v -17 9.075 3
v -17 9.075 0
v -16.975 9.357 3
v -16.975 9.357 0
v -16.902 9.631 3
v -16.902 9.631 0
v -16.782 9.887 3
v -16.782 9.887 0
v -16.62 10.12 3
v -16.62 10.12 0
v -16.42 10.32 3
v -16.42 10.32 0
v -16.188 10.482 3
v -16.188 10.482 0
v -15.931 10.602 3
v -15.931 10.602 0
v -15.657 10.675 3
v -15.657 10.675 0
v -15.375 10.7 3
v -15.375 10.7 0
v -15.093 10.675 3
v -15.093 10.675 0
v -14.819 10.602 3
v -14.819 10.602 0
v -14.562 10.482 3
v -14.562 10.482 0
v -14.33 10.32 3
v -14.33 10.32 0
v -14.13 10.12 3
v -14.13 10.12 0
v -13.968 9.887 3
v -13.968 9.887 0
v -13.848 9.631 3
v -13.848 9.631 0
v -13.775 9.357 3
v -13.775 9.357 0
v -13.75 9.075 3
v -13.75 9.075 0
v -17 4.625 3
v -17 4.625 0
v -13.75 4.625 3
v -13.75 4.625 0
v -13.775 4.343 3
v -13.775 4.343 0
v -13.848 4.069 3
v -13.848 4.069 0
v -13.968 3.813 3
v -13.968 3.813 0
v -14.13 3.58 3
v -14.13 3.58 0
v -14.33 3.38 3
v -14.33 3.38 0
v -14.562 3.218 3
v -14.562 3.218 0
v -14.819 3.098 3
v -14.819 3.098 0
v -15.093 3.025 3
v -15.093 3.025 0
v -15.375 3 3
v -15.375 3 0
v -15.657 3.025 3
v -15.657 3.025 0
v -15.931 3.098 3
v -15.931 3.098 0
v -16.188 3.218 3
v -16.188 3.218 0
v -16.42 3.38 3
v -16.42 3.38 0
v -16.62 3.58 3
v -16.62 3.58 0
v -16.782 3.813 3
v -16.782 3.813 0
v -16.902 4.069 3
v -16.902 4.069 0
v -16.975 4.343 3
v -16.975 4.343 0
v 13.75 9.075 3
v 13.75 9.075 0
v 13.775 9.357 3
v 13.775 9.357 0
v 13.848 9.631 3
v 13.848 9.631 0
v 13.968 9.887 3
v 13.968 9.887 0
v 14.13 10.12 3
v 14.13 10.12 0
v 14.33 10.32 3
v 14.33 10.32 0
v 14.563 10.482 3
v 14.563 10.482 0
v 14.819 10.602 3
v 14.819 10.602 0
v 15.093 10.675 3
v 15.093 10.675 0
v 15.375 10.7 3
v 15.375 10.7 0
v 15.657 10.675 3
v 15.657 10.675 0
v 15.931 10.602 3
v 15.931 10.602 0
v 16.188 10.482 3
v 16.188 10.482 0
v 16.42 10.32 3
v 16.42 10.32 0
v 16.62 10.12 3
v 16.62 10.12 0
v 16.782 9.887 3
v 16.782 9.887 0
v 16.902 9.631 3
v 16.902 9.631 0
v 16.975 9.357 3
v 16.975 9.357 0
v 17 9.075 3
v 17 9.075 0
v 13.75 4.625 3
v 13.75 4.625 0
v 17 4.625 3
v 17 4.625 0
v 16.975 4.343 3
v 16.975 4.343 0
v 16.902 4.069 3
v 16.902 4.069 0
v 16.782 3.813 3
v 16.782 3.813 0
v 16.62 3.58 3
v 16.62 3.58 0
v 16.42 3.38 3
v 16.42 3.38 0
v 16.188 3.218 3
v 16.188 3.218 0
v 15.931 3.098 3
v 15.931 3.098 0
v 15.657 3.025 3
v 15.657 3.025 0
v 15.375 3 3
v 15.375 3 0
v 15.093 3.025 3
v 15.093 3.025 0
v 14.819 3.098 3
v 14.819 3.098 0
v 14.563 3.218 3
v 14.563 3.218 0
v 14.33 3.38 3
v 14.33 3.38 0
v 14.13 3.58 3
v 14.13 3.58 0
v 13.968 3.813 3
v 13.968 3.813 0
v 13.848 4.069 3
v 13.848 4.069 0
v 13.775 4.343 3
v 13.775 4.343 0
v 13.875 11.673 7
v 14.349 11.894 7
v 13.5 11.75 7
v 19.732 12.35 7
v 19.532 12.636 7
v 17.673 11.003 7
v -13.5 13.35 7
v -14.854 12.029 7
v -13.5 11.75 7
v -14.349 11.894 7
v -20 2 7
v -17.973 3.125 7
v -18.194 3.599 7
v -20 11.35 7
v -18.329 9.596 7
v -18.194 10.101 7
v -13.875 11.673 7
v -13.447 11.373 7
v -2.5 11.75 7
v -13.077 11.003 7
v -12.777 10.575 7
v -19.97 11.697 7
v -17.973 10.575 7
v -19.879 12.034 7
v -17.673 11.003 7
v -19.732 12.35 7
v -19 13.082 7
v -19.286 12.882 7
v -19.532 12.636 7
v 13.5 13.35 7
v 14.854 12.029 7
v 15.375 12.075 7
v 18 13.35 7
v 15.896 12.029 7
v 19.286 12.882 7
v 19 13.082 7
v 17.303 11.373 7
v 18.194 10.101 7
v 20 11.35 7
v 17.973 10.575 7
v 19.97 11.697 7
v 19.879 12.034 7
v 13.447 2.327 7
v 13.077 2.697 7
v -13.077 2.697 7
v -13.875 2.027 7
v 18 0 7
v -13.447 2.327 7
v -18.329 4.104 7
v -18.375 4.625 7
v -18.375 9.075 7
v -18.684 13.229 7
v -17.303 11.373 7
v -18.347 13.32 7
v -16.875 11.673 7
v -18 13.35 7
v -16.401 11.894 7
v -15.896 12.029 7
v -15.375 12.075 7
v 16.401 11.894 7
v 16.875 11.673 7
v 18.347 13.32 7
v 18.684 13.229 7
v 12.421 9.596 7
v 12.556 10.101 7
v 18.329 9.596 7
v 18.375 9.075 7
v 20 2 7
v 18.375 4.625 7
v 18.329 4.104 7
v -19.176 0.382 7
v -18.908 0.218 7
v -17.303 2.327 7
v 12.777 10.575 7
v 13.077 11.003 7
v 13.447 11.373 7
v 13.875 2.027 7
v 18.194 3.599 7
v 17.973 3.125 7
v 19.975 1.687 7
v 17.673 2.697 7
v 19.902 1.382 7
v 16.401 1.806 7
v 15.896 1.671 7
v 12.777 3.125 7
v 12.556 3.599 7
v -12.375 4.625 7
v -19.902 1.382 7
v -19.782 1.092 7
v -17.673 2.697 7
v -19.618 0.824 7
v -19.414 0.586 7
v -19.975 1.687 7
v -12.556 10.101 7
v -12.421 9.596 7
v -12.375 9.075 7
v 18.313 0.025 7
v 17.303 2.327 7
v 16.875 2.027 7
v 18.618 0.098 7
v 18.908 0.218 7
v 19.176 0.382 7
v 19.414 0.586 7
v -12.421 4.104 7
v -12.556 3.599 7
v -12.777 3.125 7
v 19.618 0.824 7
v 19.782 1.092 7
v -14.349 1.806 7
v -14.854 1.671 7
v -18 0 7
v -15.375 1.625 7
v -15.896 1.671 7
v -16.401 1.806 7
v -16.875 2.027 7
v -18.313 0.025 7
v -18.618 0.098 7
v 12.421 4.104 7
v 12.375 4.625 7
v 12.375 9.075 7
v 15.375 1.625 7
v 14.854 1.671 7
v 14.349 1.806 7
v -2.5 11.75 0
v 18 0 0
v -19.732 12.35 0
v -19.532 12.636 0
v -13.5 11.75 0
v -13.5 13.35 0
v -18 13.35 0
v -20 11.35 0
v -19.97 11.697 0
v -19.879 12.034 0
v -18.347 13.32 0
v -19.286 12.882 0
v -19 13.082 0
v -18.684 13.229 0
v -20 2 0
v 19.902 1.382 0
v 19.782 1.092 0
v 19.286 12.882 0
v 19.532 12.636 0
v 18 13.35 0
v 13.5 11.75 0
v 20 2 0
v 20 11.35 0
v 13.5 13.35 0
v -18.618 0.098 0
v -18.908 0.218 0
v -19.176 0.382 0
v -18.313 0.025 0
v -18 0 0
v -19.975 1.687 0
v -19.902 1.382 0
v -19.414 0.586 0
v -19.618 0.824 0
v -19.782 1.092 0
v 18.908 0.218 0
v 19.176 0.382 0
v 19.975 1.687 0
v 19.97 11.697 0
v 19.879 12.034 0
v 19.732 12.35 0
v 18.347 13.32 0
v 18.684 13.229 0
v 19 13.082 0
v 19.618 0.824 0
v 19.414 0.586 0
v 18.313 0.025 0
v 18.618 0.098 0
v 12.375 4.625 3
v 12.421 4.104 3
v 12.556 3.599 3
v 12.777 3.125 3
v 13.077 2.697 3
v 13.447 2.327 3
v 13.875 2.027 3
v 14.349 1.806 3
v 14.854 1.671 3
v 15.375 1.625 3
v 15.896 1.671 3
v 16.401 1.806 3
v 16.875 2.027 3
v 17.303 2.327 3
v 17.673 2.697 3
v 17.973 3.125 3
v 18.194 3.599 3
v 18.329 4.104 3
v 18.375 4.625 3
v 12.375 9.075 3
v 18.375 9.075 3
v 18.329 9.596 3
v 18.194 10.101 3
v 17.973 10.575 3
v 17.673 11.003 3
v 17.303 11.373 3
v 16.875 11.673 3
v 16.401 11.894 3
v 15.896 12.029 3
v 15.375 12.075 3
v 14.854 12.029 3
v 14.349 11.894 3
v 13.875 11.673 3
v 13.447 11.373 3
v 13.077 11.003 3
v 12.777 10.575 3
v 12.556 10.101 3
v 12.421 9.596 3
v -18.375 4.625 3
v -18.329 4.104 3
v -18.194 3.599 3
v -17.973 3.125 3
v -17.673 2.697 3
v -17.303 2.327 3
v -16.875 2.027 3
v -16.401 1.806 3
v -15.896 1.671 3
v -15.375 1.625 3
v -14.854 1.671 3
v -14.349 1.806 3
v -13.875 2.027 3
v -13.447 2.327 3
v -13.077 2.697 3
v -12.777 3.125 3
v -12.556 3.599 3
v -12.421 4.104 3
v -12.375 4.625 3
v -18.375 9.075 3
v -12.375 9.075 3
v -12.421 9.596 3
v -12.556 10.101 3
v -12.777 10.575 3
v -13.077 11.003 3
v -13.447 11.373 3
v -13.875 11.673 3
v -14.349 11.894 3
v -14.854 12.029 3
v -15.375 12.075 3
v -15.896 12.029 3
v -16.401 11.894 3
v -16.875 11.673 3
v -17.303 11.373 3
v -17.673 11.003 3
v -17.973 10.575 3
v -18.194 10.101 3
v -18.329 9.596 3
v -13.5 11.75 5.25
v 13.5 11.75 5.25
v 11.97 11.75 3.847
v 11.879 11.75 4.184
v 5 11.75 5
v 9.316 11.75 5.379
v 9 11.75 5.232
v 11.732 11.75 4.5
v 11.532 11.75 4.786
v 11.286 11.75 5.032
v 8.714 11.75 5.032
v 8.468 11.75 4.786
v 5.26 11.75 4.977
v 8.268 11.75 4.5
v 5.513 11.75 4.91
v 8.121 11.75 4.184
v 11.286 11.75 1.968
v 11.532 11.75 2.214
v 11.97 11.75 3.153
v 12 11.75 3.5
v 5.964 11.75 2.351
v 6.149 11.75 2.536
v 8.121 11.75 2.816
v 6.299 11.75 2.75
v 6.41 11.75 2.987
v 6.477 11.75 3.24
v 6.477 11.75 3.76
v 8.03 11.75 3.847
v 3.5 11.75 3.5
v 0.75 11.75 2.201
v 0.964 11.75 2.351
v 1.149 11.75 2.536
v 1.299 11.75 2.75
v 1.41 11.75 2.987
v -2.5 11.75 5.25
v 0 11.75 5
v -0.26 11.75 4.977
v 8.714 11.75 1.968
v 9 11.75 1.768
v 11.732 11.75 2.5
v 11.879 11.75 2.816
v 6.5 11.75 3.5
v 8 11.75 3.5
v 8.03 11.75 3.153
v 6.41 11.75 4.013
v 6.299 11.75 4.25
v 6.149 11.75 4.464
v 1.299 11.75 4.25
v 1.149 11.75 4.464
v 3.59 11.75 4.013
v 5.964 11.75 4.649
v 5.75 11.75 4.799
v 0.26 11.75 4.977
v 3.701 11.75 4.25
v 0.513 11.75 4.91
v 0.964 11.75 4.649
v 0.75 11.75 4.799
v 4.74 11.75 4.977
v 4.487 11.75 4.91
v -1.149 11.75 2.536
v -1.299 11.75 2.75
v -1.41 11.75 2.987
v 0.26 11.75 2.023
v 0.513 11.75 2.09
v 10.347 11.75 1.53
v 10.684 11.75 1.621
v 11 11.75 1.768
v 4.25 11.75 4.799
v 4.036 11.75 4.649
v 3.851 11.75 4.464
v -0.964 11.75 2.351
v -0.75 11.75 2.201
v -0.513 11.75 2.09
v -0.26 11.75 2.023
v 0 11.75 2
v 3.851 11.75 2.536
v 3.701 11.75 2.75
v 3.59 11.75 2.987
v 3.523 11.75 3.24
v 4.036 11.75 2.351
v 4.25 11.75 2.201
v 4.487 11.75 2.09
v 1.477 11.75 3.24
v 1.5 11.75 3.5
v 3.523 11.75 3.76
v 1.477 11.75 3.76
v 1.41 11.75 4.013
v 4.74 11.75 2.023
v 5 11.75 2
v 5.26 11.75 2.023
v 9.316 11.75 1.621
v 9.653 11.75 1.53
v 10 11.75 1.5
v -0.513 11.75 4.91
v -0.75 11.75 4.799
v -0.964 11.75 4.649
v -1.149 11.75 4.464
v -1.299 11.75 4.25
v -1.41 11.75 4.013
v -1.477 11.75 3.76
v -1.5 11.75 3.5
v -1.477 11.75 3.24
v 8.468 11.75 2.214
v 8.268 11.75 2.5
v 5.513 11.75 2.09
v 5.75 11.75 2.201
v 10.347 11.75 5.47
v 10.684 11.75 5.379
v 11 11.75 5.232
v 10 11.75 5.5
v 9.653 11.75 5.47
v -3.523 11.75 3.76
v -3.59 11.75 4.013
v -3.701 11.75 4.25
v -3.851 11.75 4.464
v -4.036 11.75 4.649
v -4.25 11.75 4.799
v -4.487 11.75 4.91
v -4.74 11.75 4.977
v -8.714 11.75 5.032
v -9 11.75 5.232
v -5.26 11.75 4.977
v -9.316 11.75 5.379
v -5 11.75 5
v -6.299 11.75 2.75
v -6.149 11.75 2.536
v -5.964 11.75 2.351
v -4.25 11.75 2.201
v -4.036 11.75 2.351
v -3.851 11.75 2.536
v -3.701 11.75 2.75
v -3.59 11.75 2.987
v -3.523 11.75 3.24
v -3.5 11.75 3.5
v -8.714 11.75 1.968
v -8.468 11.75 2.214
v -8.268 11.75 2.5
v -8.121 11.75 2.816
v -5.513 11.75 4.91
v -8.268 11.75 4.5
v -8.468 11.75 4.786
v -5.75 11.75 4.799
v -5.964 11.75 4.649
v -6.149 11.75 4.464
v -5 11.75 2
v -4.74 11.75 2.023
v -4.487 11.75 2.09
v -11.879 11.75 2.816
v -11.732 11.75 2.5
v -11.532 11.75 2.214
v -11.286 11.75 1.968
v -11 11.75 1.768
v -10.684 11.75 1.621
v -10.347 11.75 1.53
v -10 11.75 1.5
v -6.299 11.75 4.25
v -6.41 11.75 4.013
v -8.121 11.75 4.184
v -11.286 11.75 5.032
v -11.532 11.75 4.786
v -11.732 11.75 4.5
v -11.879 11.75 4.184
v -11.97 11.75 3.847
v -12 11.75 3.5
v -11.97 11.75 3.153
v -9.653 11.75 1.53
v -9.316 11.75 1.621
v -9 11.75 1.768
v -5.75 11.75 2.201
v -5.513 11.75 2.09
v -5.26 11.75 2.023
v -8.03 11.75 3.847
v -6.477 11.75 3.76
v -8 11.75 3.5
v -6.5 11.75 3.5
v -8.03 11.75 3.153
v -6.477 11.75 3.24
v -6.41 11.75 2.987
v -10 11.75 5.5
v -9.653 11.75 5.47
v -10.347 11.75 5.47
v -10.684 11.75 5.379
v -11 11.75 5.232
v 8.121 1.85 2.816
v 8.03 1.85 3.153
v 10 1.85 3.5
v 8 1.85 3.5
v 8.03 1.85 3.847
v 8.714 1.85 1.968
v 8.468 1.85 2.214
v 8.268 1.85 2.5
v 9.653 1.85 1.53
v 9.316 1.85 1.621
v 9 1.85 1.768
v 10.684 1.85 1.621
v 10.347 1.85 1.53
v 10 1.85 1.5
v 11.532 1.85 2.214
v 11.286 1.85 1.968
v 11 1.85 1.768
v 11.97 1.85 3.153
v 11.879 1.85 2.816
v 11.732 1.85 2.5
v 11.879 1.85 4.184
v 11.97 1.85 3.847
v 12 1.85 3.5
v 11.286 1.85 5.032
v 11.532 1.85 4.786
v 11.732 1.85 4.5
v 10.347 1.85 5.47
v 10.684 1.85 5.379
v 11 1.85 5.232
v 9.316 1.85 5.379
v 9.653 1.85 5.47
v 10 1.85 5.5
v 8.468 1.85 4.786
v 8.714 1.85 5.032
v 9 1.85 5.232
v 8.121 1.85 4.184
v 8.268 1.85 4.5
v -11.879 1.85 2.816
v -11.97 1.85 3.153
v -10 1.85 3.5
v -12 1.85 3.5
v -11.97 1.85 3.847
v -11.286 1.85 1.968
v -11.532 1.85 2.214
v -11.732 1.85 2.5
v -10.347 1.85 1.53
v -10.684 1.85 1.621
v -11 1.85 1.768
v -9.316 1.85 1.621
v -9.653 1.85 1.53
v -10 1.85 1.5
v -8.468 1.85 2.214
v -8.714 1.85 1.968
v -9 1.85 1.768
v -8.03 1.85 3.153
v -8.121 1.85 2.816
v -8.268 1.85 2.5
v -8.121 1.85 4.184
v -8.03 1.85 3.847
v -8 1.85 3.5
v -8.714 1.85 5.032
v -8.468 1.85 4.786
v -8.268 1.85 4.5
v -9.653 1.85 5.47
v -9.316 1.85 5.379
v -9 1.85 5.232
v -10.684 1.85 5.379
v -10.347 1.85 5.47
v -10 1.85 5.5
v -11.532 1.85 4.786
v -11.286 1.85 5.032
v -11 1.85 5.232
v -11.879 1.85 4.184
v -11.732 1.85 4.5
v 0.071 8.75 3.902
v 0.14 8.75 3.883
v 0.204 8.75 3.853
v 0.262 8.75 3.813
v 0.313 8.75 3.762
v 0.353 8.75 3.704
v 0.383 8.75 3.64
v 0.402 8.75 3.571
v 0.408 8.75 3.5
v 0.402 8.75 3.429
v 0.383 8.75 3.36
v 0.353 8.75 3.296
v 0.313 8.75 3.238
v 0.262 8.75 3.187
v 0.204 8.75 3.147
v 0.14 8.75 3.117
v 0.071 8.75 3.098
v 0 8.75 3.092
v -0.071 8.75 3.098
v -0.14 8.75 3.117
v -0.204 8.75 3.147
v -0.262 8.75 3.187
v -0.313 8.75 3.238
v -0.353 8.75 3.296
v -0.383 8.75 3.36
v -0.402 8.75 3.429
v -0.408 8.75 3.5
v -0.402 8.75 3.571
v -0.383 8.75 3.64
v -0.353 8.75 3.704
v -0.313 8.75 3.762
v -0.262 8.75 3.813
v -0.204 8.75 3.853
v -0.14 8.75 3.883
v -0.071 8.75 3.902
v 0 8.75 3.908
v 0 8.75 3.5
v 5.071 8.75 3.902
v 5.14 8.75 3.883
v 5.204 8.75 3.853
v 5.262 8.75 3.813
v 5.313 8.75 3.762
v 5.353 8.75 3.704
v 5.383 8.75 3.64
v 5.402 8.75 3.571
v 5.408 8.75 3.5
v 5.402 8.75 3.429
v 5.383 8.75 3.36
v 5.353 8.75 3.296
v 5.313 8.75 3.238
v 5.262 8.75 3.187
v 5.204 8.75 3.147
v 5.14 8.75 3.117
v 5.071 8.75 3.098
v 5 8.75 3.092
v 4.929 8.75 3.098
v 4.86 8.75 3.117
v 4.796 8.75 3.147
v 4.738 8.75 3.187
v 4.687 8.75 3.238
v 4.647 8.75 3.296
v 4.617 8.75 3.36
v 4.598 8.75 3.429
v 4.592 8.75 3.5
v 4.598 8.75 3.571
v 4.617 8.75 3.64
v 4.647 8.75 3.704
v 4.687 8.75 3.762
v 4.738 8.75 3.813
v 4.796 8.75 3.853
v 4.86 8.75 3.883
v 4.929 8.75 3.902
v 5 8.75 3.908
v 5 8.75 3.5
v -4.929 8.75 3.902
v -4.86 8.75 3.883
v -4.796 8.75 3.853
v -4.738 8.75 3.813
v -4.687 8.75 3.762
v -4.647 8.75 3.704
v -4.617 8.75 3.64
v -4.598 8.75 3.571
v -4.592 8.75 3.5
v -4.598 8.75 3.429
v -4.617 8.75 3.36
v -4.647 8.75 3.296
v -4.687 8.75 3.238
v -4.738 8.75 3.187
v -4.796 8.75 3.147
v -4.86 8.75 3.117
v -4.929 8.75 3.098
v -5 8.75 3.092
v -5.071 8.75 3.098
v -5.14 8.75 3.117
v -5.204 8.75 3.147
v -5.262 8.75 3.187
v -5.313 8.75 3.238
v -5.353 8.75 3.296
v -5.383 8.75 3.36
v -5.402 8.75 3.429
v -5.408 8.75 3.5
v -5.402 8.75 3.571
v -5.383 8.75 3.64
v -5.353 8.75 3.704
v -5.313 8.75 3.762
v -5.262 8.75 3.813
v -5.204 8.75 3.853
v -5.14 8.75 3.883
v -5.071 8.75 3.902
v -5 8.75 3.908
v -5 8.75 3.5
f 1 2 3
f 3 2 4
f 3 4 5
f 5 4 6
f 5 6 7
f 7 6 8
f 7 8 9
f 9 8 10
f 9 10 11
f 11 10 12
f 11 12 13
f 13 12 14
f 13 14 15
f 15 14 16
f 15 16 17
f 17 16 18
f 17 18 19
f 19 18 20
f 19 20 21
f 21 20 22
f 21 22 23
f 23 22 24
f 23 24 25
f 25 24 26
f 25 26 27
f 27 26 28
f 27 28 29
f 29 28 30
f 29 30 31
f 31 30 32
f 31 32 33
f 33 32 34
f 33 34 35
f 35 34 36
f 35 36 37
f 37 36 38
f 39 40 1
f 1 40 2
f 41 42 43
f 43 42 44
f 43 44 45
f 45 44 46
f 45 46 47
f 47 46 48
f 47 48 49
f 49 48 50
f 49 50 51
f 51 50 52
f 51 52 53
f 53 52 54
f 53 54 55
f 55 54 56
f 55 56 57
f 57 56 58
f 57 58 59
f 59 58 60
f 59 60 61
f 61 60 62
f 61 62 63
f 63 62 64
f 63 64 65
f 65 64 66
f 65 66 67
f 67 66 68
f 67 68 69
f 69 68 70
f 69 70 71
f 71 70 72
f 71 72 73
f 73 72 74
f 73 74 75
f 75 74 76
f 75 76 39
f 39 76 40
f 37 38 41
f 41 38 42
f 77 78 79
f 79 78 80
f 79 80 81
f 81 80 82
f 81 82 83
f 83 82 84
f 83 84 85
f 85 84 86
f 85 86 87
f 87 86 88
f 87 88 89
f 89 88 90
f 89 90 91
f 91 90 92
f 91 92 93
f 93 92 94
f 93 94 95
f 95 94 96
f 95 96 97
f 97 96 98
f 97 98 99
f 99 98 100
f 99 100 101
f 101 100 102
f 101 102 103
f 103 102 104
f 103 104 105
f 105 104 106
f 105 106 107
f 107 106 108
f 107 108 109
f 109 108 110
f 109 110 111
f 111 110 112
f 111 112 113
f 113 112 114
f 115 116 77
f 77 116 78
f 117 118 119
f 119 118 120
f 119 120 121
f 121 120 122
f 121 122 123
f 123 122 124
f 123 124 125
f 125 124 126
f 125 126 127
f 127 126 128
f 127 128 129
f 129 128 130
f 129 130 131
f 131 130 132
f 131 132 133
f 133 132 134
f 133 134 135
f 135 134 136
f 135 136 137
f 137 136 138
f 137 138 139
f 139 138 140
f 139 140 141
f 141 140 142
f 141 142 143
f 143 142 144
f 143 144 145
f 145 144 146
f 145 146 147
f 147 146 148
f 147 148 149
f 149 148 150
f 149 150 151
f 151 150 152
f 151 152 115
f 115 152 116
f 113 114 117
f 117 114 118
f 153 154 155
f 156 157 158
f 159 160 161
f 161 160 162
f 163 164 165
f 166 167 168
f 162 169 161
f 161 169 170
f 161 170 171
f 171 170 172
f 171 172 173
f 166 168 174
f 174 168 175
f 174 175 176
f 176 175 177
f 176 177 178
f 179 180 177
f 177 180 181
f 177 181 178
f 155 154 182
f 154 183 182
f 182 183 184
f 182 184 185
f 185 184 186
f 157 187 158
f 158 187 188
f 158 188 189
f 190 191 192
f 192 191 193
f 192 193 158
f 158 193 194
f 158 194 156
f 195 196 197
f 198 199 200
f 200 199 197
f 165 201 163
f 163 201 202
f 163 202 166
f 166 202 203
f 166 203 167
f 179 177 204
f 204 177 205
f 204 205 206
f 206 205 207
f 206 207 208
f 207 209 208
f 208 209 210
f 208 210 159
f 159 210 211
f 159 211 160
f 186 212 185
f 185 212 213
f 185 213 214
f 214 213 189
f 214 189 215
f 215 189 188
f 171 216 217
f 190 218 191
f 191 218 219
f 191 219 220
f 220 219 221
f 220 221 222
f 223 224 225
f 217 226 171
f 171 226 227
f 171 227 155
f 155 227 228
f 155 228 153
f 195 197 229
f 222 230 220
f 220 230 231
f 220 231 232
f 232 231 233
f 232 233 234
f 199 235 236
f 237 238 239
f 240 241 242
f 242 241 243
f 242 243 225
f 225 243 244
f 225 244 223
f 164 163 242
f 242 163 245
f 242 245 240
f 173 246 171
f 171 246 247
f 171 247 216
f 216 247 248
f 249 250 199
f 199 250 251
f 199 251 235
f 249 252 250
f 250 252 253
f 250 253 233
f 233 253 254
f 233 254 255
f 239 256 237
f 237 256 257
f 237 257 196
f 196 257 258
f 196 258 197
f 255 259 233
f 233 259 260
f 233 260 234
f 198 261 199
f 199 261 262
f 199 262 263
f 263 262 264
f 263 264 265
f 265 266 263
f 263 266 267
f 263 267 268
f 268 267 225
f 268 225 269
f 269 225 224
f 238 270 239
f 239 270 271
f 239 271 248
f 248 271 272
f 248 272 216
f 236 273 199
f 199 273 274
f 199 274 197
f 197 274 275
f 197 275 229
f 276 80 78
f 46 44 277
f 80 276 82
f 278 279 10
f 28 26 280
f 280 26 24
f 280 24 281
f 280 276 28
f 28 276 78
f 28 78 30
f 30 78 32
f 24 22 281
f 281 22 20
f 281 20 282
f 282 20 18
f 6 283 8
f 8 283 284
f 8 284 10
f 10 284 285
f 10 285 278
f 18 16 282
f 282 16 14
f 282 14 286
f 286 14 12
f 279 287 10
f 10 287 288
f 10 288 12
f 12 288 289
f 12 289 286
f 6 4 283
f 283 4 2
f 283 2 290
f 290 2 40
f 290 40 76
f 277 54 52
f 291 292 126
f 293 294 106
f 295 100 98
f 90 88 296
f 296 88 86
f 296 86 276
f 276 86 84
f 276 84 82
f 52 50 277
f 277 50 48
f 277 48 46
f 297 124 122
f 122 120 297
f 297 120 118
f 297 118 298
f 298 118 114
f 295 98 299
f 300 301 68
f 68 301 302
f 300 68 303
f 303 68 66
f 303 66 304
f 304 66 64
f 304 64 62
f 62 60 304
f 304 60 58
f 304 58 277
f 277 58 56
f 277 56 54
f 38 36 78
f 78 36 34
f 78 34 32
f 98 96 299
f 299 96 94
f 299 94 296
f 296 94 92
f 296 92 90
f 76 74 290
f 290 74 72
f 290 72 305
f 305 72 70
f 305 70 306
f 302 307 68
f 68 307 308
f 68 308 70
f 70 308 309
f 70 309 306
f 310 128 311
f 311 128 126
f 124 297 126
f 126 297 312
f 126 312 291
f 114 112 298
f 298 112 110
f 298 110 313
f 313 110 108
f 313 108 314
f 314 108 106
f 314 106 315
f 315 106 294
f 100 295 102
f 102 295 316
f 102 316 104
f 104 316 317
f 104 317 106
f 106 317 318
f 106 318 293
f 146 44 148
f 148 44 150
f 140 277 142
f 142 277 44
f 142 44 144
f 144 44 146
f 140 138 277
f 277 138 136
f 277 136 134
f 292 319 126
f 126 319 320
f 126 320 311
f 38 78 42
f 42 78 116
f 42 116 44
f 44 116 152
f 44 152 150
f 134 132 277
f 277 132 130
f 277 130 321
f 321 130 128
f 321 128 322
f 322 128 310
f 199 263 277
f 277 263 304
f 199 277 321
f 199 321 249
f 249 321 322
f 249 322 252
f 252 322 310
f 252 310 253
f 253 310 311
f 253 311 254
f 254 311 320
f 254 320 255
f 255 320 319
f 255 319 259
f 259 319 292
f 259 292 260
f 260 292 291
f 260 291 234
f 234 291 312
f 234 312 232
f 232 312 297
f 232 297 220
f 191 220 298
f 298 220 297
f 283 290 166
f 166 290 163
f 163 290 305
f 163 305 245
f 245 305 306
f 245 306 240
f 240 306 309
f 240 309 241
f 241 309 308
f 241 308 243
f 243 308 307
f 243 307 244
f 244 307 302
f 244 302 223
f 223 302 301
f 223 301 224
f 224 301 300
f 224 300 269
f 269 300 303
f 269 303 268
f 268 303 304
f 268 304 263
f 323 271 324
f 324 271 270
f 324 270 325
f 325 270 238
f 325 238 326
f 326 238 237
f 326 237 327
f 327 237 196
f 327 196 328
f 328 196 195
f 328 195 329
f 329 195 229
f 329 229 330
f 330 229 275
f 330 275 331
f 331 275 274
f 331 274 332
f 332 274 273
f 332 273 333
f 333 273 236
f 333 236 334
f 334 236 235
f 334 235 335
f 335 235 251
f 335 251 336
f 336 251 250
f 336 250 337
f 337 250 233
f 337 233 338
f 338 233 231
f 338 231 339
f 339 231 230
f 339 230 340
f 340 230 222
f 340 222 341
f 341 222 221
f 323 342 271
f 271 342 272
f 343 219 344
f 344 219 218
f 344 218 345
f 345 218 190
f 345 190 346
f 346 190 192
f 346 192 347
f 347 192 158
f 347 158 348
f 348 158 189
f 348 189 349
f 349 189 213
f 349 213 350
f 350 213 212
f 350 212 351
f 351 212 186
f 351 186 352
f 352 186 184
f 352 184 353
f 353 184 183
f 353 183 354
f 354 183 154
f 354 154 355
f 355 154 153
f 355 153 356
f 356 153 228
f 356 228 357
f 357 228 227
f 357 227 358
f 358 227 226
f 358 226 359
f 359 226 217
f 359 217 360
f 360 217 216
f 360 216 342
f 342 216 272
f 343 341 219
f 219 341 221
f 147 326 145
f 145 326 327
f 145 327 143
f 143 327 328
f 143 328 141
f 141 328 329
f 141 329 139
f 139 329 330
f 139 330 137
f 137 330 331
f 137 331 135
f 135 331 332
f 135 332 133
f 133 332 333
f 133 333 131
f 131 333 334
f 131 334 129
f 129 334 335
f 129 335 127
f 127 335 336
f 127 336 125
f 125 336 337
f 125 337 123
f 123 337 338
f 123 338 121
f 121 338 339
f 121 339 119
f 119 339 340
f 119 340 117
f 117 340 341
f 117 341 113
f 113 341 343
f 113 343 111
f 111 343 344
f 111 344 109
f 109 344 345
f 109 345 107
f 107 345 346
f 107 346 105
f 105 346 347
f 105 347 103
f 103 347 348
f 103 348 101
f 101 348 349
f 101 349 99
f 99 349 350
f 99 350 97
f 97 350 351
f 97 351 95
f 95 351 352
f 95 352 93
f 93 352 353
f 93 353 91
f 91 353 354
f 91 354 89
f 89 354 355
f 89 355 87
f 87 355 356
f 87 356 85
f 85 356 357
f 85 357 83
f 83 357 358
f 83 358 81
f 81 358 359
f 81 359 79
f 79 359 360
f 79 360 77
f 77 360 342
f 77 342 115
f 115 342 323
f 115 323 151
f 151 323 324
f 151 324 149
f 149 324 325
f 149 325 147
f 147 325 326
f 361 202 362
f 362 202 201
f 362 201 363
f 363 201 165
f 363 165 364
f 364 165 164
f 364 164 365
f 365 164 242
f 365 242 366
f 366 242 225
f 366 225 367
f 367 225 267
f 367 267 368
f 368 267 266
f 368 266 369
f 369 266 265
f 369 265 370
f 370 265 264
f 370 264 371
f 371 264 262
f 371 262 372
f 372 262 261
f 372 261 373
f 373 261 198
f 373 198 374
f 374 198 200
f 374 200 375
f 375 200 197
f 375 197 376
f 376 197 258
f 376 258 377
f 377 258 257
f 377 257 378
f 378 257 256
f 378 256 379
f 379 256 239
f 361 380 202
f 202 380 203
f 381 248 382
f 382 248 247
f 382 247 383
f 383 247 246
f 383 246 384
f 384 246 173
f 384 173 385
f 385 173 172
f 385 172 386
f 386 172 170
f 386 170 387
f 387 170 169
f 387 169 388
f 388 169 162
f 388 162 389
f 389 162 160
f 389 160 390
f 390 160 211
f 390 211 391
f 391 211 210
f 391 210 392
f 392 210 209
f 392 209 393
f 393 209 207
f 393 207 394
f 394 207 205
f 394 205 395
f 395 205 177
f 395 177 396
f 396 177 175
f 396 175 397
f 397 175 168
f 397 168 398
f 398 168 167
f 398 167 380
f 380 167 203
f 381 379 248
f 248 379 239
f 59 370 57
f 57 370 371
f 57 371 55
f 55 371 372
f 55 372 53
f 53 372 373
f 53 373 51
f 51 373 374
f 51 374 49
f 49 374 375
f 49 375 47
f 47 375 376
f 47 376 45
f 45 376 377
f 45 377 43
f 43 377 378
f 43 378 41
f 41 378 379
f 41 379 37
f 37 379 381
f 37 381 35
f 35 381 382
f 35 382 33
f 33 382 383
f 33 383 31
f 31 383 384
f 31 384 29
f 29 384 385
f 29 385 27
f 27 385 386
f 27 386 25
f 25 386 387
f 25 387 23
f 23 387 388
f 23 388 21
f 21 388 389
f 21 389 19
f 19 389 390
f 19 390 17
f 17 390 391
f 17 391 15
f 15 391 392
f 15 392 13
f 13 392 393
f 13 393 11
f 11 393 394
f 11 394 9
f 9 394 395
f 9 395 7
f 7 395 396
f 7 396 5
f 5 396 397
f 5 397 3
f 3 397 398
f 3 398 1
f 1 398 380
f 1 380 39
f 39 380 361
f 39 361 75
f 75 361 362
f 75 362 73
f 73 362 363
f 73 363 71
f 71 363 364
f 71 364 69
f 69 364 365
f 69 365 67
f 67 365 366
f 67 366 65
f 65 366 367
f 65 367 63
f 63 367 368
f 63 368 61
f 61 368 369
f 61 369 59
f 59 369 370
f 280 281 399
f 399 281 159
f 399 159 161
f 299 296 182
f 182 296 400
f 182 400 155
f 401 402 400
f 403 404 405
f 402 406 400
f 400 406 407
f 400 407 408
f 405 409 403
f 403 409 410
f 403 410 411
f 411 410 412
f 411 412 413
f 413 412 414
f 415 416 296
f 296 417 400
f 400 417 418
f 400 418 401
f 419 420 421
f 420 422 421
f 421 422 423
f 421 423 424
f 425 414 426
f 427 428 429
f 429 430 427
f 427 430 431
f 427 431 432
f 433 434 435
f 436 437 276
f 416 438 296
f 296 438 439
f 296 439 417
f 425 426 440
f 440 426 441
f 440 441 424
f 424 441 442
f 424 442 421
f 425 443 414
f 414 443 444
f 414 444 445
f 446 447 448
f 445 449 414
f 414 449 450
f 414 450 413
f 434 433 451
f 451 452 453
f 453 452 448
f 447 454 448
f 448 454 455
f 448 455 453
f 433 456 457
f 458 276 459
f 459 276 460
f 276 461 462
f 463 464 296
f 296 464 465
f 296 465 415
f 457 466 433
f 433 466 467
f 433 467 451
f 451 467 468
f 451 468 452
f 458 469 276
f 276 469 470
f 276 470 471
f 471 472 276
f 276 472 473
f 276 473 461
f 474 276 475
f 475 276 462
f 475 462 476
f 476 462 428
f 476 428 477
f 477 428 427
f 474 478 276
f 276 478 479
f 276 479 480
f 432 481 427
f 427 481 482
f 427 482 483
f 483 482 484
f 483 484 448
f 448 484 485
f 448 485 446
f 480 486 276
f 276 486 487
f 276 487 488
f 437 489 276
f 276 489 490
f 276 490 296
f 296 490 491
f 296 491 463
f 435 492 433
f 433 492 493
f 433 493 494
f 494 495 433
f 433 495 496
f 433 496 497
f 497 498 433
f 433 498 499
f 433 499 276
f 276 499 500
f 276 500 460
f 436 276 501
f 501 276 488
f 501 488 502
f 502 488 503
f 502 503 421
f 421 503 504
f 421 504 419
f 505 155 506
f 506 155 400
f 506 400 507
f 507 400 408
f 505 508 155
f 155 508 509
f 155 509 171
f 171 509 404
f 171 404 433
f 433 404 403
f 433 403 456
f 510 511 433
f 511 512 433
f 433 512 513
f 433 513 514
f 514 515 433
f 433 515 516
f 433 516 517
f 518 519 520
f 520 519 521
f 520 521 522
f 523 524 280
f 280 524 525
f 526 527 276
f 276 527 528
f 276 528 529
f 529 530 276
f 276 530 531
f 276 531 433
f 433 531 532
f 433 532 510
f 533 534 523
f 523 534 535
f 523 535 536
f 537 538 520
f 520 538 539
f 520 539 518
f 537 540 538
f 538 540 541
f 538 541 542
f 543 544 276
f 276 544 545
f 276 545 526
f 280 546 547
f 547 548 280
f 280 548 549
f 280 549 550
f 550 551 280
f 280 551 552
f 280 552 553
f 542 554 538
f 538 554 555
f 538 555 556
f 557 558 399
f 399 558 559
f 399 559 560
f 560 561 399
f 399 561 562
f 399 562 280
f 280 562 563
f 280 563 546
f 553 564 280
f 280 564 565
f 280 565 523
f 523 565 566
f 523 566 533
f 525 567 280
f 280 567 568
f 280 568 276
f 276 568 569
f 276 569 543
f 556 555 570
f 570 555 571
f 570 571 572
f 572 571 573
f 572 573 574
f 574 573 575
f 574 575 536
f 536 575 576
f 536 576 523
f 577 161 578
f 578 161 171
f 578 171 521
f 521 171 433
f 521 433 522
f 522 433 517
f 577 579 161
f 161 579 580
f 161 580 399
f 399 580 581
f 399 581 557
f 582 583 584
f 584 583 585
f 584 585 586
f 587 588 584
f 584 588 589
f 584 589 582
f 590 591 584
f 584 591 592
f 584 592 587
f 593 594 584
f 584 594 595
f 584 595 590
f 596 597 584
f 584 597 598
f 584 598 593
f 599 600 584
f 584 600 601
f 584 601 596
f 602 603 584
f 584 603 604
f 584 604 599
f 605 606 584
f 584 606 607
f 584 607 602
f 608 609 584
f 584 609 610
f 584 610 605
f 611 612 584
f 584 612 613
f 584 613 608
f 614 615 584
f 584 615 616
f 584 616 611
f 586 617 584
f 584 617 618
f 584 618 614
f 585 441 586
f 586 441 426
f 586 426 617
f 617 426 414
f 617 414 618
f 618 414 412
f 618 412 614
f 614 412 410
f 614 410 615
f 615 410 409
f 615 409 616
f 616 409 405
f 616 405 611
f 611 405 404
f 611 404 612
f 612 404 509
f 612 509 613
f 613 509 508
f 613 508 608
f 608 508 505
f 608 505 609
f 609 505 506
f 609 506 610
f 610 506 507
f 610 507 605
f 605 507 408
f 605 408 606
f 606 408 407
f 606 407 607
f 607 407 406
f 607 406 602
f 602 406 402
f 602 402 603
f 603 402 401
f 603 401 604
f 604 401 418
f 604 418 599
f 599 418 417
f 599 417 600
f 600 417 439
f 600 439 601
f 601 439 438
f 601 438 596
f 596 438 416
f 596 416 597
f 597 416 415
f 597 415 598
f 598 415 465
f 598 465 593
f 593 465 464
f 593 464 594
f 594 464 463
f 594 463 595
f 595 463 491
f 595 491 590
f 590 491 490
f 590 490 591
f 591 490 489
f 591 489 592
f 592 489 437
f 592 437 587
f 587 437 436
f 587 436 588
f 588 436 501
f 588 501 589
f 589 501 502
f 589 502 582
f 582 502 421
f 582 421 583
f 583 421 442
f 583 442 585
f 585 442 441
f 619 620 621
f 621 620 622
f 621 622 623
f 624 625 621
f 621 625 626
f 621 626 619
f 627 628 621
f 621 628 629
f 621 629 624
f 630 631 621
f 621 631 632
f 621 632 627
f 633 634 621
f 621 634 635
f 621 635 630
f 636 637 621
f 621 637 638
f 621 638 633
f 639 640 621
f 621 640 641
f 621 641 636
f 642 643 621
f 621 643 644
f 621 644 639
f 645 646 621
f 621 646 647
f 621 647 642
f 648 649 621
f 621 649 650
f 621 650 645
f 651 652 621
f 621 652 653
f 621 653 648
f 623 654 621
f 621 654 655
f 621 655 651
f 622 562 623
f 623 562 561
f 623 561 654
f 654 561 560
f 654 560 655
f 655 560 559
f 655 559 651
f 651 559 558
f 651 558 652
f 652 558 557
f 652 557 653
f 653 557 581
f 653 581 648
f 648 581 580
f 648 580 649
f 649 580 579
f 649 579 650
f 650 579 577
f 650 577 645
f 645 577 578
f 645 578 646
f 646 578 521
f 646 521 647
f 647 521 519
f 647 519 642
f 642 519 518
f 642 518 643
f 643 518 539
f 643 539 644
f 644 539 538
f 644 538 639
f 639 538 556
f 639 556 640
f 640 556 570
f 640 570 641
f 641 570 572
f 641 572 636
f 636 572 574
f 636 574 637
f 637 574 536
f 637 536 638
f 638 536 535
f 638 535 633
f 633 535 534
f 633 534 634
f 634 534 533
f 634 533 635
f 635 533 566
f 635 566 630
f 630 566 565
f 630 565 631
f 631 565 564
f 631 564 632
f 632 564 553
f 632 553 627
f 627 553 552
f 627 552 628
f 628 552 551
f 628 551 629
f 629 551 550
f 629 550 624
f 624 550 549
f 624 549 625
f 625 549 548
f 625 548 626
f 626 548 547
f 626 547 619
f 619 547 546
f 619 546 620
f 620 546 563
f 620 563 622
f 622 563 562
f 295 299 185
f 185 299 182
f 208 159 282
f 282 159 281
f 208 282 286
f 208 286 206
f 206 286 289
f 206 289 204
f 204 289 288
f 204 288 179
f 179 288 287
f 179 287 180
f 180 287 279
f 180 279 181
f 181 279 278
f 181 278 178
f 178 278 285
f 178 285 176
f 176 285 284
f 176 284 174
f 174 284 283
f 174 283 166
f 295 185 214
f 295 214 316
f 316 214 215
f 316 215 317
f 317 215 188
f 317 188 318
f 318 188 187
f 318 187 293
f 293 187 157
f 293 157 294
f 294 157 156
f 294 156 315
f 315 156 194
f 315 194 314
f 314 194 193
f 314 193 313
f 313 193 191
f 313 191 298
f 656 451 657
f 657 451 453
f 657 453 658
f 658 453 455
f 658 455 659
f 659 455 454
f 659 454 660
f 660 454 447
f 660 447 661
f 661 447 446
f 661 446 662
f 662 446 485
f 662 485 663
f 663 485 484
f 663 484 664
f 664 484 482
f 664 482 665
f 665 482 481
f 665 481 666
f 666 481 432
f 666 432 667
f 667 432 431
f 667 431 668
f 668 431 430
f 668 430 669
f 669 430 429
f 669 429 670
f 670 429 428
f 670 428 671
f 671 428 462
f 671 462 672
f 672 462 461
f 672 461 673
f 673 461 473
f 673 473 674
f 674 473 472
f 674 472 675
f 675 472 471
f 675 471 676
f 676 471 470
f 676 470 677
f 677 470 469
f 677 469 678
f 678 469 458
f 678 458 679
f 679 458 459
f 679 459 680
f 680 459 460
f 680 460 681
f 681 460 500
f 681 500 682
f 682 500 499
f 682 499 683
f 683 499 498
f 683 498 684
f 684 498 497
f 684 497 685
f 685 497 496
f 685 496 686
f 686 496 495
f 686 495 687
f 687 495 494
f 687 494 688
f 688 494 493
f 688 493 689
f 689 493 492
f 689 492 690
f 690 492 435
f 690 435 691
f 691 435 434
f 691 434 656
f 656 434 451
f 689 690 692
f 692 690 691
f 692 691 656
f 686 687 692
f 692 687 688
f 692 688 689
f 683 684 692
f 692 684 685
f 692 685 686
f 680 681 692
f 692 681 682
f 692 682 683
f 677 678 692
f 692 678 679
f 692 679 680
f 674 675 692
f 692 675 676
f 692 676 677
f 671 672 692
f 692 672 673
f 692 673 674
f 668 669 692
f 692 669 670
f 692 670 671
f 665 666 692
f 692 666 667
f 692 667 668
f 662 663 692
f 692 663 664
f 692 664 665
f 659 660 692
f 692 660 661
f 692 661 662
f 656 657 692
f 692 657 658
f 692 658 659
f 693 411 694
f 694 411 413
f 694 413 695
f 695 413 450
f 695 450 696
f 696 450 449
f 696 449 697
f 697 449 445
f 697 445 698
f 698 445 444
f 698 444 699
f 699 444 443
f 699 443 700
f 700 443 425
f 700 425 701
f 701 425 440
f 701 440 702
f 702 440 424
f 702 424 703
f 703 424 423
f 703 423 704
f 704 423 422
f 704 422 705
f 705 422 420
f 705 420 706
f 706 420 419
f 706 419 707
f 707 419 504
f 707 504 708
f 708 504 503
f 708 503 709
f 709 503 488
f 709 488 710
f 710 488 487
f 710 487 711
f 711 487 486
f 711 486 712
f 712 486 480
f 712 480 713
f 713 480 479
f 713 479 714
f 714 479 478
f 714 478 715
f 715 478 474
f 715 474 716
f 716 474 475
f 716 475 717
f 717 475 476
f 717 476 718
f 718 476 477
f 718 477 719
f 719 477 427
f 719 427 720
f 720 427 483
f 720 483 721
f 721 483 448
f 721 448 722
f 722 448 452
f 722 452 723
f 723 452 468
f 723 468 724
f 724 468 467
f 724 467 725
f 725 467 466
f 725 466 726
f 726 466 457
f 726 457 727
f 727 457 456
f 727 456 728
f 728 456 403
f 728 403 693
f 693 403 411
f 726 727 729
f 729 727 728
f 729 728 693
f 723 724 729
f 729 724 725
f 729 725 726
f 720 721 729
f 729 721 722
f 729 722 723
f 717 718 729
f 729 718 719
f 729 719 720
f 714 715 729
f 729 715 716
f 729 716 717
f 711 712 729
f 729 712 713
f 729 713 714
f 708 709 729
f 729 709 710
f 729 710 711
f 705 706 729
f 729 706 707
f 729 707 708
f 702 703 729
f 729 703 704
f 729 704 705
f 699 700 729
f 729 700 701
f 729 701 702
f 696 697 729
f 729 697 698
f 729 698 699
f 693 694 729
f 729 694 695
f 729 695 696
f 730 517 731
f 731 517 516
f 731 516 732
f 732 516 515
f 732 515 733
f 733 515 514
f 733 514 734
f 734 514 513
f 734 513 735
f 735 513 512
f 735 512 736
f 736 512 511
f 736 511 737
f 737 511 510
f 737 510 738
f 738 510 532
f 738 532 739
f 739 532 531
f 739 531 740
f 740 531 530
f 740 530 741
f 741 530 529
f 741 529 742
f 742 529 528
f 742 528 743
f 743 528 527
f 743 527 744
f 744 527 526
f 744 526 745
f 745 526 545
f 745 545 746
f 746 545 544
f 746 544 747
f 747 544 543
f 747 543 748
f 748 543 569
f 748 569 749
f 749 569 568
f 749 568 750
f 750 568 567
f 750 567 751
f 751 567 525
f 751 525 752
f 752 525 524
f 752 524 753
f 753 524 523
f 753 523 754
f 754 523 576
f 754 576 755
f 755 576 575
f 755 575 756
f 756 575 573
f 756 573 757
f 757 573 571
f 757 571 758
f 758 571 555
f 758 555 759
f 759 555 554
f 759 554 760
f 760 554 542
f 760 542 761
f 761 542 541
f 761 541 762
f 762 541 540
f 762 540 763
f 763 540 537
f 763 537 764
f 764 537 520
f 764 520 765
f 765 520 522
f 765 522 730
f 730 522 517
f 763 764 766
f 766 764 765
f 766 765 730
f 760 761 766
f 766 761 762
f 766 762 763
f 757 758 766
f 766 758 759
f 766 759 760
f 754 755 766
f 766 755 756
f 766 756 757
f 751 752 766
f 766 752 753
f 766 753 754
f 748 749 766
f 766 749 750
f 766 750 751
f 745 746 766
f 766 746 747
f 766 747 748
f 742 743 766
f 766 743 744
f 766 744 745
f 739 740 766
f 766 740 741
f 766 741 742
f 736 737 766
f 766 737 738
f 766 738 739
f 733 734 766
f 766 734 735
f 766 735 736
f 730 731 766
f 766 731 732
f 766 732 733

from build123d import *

# Parameters (mm, degrees)
BOSS_EXTRUDE1_DEPTH          = 7
CUT_EXTRUDE1_DEPTH           = 4
CUT_EXTRUDE4_DEPTH           = 30.03484975
SKETCH8_R                    = 2
CUT_EXTRUDE5_DEPTH           = 18
SKETCH9_R                    = 3
CUT_EXTRUDE6_DEPTH           = 8.1
SKETCH10_W                   = 40
SKETCH10_H                   = 6.5
CUT_EXTRUDE7_DEPTH           = 30.034849842
FILLET1_R                    = 2
SKETCH11_R                   = 1.5
CUT_EXTRUDE8_DEPTH           = 3
CUT_EXTRUDE8_DRAFT           = -20
CUT_EXTRUDE8_PROFILE_2_DEPTH = 3
CUT_EXTRUDE8_PROFILE_2_DRAFT = -20
CUT_EXTRUDE8_PROFILE_3_DEPTH = 3
CUT_EXTRUDE8_PROFILE_3_DRAFT = -20


with BuildPart() as part:
    # Sketch1 → Boss-Extrude1 (new body)
    with BuildSketch(Plane.XY):
        with BuildLine():
            Line((0, 0), (18, 0))
            ThreePointArc((18, 0), (19.414213562, 0.585786438), (20, 2))
            Line((20, 2), (20, 11.945768163))
            ThreePointArc((20, 11.945768163), (19.769252649, 12.878369398), (19.130254936, 13.595775369))
            Line((19.130254936, 13.595775369), (10.510938386, 19.500007206))
            ThreePointArc((10.510938386, 19.500007206), (9.972285338, 19.760499203), (9.380683449, 19.85))
            Line((9.380683449, 19.85), (-9.380683449, 19.85))
            ThreePointArc((-9.380683449, 19.85), (-9.972285338, 19.760499203), (-10.510938386, 19.500007206))
            Line((-10.510938386, 19.500007206), (-19.130254936, 13.595775369))
            ThreePointArc((-19.130254936, 13.595775369), (-19.769252649, 12.878369398), (-20, 11.945768163))
            Line((-20, 11.945768163), (-20, 2))
            ThreePointArc((-20, 2), (-19.414213562, 0.585786438), (-18, 0))
            Line((-18, 0), (0, 0))
        make_face()
        with BuildLine():
            Line((-13.75, 9.075), (-13.75, 4.625))
            ThreePointArc((-13.75, 4.625), (-15.375, 3), (-17, 4.625))
            Line((-17, 4.625), (-17, 9.075))
            ThreePointArc((-17, 9.075), (-15.375, 10.7), (-13.75, 9.075))
        make_face(mode=Mode.SUBTRACT)
        with BuildLine():
            Line((17, 9.075), (17, 4.625))
            ThreePointArc((17, 4.625), (15.375, 3), (13.75, 4.625))
            Line((13.75, 4.625), (13.75, 9.075))
            ThreePointArc((13.75, 9.075), (15.375, 10.7), (17, 9.075))
        make_face(mode=Mode.SUBTRACT)
    extrude(amount=BOSS_EXTRUDE1_DEPTH)

    # Sketch2 → Cut-Extrude1 (cut)
    with BuildSketch(Plane.XY.offset(7)):
        with BuildLine():
            Line((-18.375, 4.625), (-18.375, 9.075))
            ThreePointArc((-18.375, 9.075), (-15.375, 12.075), (-12.375, 9.075))
            Line((-12.375, 9.075), (-12.375, 4.625))
            ThreePointArc((-12.375, 4.625), (-15.375, 1.625), (-18.375, 4.625))
        make_face()
        with BuildLine():
            Line((12.375, 4.625), (12.375, 9.075))
            ThreePointArc((12.375, 9.075), (15.375, 12.075), (18.375, 9.075))
            Line((18.375, 9.075), (18.375, 4.625))
            ThreePointArc((18.375, 4.625), (15.375, 1.625), (12.375, 4.625))
        make_face()
    extrude(amount=-CUT_EXTRUDE1_DEPTH, mode=Mode.SUBTRACT)

    # Sketch6 → Cut-Extrude4 (cut, through all)
    with BuildSketch(Plane.XY.offset(7)):
        Polygon((-13.5, 13.35), (-6.5, 13.35), (-6.5, 19.85), (6.5, 19.85), (6.5, 13.35), (13.5, 13.35), (13.5, 11.75), (-13.5, 11.75), align=None)
    extrude(amount=-CUT_EXTRUDE4_DEPTH, mode=Mode.SUBTRACT)

    # Sketch8 → Cut-Extrude5 (cut)
    with BuildSketch(Plane(origin=(0, 19.85, 0), x_dir=(1, 0, 0), z_dir=(0, 1, 0))):
        with Locations(Location((-10, -3.5, 0), (0, 0, 180))):
            Circle(SKETCH8_R)
        with Locations(Location((10, -3.5, 0), (0, 0, 180))):
            Circle(SKETCH8_R)
    extrude(amount=-CUT_EXTRUDE5_DEPTH, mode=Mode.SUBTRACT)

    # Sketch9 → Cut-Extrude6 (cut)
    with BuildSketch(Plane(origin=(0, 19.85, 0), x_dir=(1, 0, 0), z_dir=(0, 1, 0))):
        with Locations(Location((10, -3.5, 0), (0, 0, 101.913740948))):
            Circle(SKETCH9_R)
        with Locations(Location((-10, -3.5, 0), (0, 0, 99.806006121))):
            Circle(SKETCH9_R)
    extrude(amount=-CUT_EXTRUDE6_DEPTH, mode=Mode.SUBTRACT)

    # Sketch10 → Cut-Extrude7 (cut, through all)
    with BuildSketch(Plane.XY.offset(7)):
        with Locations((0, 16.6)):
            Rectangle(SKETCH10_W, SKETCH10_H)
    extrude(amount=-CUT_EXTRUDE7_DEPTH, mode=Mode.SUBTRACT)

    # Fillet1
    # the kernel refuses this fillet: 2 mm, written as the material it takes off along each edge
    with BuildSketch(Plane(origin=(-19.424125327, 13.35, 12.203143064), x_dir=(-0.27669557885699486, -0.9609576247894558, 0), z_dir=(0, 0, -1))) as fillet1_piece_1:
        with BuildLine():
            CenterArc((1.527866068, -1.92191525), FILLET1_R, 73.936914891, 90)
            Line((-0.394049182, -1.368524092), (-0.586240707, -1.313184976))
            Line((-0.586240707, -1.313184976), (-0.192191525, 0.055339116))
            Line((-0.192191525, 0.055339116), (-0.095535811, 0.175706883))
            ThreePointArc((-0.095535811, 0.175706883), (1.564088383, 0.357037942), (2.136596341, 0.192191525))
            Line((2.136596341, 0.192191525), (2.081257226, 0))
        make_face()
    extrude(amount=17.406286128, mode=Mode.SUBTRACT)
    with BuildSketch(Plane(origin=(19.424125327, 13.35, 12.203143064), x_dir=(-1, 0, 0), z_dir=(0, 0, -1))) as fillet1_piece_2:
        with BuildLine():
            CenterArc((1.424125327, -2), FILLET1_R, 90, 90)
            Line((-0.575874673, -2), (-0.775874673, -2))
            ThreePointArc((-0.775874673, -2), (-0.775874673, -1.404231837), (-0.142412533, 0.140423184))
            Line((-0.142412533, 0.140423184), (0, 0.2))
            Line((0, 0.2), (1.424125327, 0.2))
            Line((1.424125327, 0.2), (1.424125327, 0))
        make_face()
    extrude(amount=17.406286128, mode=Mode.SUBTRACT)


with BuildPart() as cut_extrude8_tool:
    # Sketch11 → Cut-Extrude8 (with draft: the straight prism first)
    with BuildSketch(Plane(origin=(0, 11.75, 0), x_dir=(1, 0, 0), z_dir=(0, 1, 0))):
        with Locations((0, -3.5)):
            Circle(SKETCH11_R)
    extrude(amount=-CUT_EXTRUDE8_DEPTH)
    # Cut-Extrude8: the draft: its side faces are tilted about the plane it starts from
    cut_extrude8_sides = [cut_extrude8_tool.faces().sort_by_distance(p)[0] for p in [
        (-1.5, 10.25, 3.5),
    ]]
    draft(cut_extrude8_sides, Plane(origin=(0, 11.75, 0), x_dir=(1, 0, 0), z_dir=(0, 1, 0)), CUT_EXTRUDE8_DRAFT)


with BuildPart() as part_1:
    add(part.part)

    # Cut-Extrude8: cut by cut_extrude8_tool
    add(cut_extrude8_tool.part, mode=Mode.SUBTRACT)


with BuildPart() as cut_extrude8_profile_2_tool:
    # Sketch11 → Cut-Extrude8 profile 2 (with draft: the straight prism first)
    with BuildSketch(Plane(origin=(0, 11.75, 0), x_dir=(1, 0, 0), z_dir=(0, 1, 0))):
        with Locations((5, -3.5)):
            Circle(SKETCH11_R)
    extrude(amount=-CUT_EXTRUDE8_PROFILE_2_DEPTH)
    # Cut-Extrude8 profile 2: the draft: its side faces are tilted about the plane it starts from
    cut_extrude8_profile_2_sides = [cut_extrude8_profile_2_tool.faces().sort_by_distance(p)[0] for p in [
        (3.5, 10.25, 3.5),
    ]]
    draft(cut_extrude8_profile_2_sides, Plane(origin=(0, 11.75, 0), x_dir=(1, 0, 0), z_dir=(0, 1, 0)), CUT_EXTRUDE8_PROFILE_2_DRAFT)


with BuildPart() as part_2:
    add(part_1.part)

    # Cut-Extrude8 profile 2: cut by cut_extrude8_profile_2_tool
    add(cut_extrude8_profile_2_tool.part, mode=Mode.SUBTRACT)


with BuildPart() as cut_extrude8_profile_3_tool:
    # Sketch11 → Cut-Extrude8 profile 3 (with draft: the straight prism first)
    with BuildSketch(Plane(origin=(0, 11.75, 0), x_dir=(1, 0, 0), z_dir=(0, 1, 0))):
        with Locations((-5, -3.5)):
            Circle(SKETCH11_R)
    extrude(amount=-CUT_EXTRUDE8_PROFILE_3_DEPTH)
    # Cut-Extrude8 profile 3: the draft: its side faces are tilted about the plane it starts from
    cut_extrude8_profile_3_sides = [cut_extrude8_profile_3_tool.faces().sort_by_distance(p)[0] for p in [
        (-6.5, 10.25, 3.5),
    ]]
    draft(cut_extrude8_profile_3_sides, Plane(origin=(0, 11.75, 0), x_dir=(1, 0, 0), z_dir=(0, 1, 0)), CUT_EXTRUDE8_PROFILE_3_DRAFT)


with BuildPart() as part_3:
    add(part_2.part)

    # Cut-Extrude8 profile 3: cut by cut_extrude8_profile_3_tool
    add(cut_extrude8_profile_3_tool.part, mode=Mode.SUBTRACT)


solid = part_3.part
